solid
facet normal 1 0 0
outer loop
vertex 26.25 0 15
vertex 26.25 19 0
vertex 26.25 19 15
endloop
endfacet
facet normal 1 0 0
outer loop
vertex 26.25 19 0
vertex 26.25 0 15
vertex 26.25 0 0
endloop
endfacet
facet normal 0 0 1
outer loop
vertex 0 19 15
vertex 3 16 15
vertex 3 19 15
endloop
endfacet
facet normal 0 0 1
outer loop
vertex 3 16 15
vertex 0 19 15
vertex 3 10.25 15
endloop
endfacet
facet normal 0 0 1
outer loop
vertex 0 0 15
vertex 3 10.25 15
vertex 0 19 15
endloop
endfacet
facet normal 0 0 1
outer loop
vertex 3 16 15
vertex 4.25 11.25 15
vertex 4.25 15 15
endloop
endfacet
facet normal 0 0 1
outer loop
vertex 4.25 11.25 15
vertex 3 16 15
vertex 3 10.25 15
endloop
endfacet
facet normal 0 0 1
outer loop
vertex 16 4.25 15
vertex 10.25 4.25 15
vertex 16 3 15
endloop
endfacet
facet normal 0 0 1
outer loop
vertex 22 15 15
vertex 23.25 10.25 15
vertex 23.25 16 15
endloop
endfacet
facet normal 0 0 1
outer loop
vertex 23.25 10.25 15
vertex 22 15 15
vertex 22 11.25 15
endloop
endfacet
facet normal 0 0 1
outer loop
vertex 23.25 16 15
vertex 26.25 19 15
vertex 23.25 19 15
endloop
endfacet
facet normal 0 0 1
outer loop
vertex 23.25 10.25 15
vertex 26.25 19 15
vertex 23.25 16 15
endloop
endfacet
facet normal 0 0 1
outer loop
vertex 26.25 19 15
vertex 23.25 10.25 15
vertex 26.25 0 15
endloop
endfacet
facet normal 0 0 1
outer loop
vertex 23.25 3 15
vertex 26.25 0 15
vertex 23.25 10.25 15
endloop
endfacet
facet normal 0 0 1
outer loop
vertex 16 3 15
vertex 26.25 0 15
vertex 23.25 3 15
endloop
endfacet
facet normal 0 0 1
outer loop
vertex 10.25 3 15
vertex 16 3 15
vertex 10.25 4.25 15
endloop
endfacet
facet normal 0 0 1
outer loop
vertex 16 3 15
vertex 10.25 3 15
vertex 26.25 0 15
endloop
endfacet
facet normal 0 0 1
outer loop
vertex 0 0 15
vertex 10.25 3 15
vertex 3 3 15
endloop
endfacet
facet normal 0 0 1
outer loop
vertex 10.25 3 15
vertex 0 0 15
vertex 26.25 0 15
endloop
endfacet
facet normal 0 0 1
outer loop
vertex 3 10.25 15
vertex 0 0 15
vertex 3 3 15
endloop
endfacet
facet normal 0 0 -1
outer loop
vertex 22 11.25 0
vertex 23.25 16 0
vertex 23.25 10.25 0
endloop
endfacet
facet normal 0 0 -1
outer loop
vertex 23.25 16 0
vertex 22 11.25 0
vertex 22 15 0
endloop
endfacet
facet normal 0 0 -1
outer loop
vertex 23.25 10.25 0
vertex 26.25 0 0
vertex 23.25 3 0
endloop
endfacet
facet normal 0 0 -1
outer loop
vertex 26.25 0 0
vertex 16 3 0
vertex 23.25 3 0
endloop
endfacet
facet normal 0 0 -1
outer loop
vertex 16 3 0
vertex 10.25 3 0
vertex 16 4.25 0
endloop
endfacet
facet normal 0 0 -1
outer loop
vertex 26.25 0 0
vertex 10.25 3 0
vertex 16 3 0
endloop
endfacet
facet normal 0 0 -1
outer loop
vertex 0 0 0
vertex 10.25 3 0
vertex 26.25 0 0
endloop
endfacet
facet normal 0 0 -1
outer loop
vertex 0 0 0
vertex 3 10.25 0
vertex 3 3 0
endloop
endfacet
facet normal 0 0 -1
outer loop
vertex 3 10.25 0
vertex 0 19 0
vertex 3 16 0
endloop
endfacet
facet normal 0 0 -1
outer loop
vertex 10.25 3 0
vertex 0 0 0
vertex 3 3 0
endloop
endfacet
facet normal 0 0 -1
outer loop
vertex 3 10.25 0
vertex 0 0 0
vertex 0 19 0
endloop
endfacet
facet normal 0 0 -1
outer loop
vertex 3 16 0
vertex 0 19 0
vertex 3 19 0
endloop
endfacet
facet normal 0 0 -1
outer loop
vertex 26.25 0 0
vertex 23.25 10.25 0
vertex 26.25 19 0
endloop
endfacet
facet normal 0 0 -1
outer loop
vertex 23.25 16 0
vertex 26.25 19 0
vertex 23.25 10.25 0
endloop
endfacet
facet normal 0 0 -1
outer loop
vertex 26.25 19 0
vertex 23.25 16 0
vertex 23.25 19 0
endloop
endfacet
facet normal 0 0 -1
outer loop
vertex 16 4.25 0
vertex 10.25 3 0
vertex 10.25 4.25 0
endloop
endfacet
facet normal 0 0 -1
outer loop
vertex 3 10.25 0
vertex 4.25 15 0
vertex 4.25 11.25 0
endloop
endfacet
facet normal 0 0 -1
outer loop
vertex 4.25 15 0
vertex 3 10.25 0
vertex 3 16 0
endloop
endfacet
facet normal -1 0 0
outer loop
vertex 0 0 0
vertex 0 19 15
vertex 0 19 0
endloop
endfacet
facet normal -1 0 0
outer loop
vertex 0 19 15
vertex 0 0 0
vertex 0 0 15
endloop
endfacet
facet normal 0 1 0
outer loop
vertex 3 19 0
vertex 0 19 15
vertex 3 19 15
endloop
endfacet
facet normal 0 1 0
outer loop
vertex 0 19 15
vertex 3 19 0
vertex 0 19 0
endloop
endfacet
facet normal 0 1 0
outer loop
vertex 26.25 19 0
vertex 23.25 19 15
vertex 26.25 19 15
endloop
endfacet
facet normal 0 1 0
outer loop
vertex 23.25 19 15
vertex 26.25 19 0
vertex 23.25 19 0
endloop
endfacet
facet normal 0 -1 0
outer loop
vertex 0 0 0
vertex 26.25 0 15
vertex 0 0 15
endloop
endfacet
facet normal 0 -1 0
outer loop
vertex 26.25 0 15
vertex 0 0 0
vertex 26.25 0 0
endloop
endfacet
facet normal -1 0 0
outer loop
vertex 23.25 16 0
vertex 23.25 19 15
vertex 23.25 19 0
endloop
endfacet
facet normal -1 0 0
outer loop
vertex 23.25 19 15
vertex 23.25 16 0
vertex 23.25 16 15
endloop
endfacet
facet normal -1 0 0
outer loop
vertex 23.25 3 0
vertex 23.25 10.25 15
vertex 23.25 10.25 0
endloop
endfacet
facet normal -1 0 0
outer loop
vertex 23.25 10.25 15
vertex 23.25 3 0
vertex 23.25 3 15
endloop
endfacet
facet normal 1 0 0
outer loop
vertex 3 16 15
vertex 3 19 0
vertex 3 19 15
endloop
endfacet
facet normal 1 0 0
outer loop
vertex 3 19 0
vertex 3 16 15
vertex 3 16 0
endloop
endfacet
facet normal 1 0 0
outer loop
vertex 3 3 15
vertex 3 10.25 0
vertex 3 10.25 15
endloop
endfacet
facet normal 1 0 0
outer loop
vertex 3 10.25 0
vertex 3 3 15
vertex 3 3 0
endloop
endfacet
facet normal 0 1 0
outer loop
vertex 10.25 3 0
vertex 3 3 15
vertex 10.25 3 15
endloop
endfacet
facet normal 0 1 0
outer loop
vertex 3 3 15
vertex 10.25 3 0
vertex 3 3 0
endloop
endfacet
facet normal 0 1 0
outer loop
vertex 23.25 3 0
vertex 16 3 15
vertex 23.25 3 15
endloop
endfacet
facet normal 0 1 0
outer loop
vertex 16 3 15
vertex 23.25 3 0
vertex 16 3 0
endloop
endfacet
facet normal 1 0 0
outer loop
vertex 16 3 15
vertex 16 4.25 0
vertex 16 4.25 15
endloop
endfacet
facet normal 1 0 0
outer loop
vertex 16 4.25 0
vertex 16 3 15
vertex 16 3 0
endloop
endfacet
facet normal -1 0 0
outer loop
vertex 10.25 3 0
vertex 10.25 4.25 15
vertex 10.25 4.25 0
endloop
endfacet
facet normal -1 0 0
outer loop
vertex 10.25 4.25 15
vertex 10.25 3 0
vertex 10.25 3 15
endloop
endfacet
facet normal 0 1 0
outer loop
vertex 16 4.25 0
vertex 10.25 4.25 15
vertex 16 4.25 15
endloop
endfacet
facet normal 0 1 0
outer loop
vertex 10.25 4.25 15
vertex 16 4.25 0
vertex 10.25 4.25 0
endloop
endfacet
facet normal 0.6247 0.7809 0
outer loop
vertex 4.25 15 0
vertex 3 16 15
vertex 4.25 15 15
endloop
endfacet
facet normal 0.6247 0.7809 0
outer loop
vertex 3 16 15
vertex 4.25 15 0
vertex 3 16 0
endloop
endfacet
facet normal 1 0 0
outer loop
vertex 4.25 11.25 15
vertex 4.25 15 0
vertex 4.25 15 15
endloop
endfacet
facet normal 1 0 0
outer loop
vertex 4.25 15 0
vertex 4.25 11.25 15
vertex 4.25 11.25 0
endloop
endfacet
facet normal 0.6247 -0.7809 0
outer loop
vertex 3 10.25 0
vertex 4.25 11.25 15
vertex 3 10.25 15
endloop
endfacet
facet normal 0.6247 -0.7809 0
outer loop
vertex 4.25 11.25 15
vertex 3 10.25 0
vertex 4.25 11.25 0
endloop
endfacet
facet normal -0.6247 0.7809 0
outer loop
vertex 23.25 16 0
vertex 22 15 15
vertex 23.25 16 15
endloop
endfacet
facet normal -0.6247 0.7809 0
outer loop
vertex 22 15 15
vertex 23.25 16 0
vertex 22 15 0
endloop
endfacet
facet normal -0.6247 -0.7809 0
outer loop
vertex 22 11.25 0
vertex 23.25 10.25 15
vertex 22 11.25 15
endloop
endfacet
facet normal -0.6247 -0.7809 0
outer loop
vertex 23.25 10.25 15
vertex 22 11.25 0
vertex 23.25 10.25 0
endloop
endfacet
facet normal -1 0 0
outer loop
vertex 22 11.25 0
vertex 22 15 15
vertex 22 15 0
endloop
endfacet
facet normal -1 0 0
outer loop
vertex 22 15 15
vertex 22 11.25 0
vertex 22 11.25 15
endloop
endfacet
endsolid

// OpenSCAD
// Clip to hold wires inside a 2020 extrusion
//
// Copyright (C) 2021  Kevin O'Connor <kevin@koconnor.net>
//
// This file may be distributed under the terms of the GNU GPLv3 license.

height = 15;
thick = 3;
slack = .250;
rail_length = 20 + slack;
rail_insert_length = 6 - slack;
CUT=.01;
$fs = 0.5;

module wire_guide() {
    rail_beam_length = (rail_length - rail_insert_length)/2;
    width = rail_beam_length + rail_insert_length + 2*thick;

    module base_guide() {
        difference() {
            cube([rail_length + 2*thick, width, height]);
            translate([thick, thick, -CUT])
                cube([rail_length, width-thick+CUT, height+2*CUT]);
        }
    }
    clip_inset = 1.25;
    module clip() {
        slope_length = 1;
        hull() {
            cube([CUT, rail_insert_length, height]);
            translate([clip_inset, slope_length, 0])
                cube([CUT, rail_insert_length - 2*slope_length, height]);
        }
    }

    base_guide();
    translate([rail_beam_length + thick, thick-CUT, 0])
        cube([rail_insert_length, clip_inset+CUT, height]);
    translate([thick-CUT, rail_beam_length + thick, 0])
        clip();
    translate([rail_length + thick + CUT, rail_beam_length + thick, 0])
        mirror([1, 0, 0])
            clip();
}

wire_guide();
